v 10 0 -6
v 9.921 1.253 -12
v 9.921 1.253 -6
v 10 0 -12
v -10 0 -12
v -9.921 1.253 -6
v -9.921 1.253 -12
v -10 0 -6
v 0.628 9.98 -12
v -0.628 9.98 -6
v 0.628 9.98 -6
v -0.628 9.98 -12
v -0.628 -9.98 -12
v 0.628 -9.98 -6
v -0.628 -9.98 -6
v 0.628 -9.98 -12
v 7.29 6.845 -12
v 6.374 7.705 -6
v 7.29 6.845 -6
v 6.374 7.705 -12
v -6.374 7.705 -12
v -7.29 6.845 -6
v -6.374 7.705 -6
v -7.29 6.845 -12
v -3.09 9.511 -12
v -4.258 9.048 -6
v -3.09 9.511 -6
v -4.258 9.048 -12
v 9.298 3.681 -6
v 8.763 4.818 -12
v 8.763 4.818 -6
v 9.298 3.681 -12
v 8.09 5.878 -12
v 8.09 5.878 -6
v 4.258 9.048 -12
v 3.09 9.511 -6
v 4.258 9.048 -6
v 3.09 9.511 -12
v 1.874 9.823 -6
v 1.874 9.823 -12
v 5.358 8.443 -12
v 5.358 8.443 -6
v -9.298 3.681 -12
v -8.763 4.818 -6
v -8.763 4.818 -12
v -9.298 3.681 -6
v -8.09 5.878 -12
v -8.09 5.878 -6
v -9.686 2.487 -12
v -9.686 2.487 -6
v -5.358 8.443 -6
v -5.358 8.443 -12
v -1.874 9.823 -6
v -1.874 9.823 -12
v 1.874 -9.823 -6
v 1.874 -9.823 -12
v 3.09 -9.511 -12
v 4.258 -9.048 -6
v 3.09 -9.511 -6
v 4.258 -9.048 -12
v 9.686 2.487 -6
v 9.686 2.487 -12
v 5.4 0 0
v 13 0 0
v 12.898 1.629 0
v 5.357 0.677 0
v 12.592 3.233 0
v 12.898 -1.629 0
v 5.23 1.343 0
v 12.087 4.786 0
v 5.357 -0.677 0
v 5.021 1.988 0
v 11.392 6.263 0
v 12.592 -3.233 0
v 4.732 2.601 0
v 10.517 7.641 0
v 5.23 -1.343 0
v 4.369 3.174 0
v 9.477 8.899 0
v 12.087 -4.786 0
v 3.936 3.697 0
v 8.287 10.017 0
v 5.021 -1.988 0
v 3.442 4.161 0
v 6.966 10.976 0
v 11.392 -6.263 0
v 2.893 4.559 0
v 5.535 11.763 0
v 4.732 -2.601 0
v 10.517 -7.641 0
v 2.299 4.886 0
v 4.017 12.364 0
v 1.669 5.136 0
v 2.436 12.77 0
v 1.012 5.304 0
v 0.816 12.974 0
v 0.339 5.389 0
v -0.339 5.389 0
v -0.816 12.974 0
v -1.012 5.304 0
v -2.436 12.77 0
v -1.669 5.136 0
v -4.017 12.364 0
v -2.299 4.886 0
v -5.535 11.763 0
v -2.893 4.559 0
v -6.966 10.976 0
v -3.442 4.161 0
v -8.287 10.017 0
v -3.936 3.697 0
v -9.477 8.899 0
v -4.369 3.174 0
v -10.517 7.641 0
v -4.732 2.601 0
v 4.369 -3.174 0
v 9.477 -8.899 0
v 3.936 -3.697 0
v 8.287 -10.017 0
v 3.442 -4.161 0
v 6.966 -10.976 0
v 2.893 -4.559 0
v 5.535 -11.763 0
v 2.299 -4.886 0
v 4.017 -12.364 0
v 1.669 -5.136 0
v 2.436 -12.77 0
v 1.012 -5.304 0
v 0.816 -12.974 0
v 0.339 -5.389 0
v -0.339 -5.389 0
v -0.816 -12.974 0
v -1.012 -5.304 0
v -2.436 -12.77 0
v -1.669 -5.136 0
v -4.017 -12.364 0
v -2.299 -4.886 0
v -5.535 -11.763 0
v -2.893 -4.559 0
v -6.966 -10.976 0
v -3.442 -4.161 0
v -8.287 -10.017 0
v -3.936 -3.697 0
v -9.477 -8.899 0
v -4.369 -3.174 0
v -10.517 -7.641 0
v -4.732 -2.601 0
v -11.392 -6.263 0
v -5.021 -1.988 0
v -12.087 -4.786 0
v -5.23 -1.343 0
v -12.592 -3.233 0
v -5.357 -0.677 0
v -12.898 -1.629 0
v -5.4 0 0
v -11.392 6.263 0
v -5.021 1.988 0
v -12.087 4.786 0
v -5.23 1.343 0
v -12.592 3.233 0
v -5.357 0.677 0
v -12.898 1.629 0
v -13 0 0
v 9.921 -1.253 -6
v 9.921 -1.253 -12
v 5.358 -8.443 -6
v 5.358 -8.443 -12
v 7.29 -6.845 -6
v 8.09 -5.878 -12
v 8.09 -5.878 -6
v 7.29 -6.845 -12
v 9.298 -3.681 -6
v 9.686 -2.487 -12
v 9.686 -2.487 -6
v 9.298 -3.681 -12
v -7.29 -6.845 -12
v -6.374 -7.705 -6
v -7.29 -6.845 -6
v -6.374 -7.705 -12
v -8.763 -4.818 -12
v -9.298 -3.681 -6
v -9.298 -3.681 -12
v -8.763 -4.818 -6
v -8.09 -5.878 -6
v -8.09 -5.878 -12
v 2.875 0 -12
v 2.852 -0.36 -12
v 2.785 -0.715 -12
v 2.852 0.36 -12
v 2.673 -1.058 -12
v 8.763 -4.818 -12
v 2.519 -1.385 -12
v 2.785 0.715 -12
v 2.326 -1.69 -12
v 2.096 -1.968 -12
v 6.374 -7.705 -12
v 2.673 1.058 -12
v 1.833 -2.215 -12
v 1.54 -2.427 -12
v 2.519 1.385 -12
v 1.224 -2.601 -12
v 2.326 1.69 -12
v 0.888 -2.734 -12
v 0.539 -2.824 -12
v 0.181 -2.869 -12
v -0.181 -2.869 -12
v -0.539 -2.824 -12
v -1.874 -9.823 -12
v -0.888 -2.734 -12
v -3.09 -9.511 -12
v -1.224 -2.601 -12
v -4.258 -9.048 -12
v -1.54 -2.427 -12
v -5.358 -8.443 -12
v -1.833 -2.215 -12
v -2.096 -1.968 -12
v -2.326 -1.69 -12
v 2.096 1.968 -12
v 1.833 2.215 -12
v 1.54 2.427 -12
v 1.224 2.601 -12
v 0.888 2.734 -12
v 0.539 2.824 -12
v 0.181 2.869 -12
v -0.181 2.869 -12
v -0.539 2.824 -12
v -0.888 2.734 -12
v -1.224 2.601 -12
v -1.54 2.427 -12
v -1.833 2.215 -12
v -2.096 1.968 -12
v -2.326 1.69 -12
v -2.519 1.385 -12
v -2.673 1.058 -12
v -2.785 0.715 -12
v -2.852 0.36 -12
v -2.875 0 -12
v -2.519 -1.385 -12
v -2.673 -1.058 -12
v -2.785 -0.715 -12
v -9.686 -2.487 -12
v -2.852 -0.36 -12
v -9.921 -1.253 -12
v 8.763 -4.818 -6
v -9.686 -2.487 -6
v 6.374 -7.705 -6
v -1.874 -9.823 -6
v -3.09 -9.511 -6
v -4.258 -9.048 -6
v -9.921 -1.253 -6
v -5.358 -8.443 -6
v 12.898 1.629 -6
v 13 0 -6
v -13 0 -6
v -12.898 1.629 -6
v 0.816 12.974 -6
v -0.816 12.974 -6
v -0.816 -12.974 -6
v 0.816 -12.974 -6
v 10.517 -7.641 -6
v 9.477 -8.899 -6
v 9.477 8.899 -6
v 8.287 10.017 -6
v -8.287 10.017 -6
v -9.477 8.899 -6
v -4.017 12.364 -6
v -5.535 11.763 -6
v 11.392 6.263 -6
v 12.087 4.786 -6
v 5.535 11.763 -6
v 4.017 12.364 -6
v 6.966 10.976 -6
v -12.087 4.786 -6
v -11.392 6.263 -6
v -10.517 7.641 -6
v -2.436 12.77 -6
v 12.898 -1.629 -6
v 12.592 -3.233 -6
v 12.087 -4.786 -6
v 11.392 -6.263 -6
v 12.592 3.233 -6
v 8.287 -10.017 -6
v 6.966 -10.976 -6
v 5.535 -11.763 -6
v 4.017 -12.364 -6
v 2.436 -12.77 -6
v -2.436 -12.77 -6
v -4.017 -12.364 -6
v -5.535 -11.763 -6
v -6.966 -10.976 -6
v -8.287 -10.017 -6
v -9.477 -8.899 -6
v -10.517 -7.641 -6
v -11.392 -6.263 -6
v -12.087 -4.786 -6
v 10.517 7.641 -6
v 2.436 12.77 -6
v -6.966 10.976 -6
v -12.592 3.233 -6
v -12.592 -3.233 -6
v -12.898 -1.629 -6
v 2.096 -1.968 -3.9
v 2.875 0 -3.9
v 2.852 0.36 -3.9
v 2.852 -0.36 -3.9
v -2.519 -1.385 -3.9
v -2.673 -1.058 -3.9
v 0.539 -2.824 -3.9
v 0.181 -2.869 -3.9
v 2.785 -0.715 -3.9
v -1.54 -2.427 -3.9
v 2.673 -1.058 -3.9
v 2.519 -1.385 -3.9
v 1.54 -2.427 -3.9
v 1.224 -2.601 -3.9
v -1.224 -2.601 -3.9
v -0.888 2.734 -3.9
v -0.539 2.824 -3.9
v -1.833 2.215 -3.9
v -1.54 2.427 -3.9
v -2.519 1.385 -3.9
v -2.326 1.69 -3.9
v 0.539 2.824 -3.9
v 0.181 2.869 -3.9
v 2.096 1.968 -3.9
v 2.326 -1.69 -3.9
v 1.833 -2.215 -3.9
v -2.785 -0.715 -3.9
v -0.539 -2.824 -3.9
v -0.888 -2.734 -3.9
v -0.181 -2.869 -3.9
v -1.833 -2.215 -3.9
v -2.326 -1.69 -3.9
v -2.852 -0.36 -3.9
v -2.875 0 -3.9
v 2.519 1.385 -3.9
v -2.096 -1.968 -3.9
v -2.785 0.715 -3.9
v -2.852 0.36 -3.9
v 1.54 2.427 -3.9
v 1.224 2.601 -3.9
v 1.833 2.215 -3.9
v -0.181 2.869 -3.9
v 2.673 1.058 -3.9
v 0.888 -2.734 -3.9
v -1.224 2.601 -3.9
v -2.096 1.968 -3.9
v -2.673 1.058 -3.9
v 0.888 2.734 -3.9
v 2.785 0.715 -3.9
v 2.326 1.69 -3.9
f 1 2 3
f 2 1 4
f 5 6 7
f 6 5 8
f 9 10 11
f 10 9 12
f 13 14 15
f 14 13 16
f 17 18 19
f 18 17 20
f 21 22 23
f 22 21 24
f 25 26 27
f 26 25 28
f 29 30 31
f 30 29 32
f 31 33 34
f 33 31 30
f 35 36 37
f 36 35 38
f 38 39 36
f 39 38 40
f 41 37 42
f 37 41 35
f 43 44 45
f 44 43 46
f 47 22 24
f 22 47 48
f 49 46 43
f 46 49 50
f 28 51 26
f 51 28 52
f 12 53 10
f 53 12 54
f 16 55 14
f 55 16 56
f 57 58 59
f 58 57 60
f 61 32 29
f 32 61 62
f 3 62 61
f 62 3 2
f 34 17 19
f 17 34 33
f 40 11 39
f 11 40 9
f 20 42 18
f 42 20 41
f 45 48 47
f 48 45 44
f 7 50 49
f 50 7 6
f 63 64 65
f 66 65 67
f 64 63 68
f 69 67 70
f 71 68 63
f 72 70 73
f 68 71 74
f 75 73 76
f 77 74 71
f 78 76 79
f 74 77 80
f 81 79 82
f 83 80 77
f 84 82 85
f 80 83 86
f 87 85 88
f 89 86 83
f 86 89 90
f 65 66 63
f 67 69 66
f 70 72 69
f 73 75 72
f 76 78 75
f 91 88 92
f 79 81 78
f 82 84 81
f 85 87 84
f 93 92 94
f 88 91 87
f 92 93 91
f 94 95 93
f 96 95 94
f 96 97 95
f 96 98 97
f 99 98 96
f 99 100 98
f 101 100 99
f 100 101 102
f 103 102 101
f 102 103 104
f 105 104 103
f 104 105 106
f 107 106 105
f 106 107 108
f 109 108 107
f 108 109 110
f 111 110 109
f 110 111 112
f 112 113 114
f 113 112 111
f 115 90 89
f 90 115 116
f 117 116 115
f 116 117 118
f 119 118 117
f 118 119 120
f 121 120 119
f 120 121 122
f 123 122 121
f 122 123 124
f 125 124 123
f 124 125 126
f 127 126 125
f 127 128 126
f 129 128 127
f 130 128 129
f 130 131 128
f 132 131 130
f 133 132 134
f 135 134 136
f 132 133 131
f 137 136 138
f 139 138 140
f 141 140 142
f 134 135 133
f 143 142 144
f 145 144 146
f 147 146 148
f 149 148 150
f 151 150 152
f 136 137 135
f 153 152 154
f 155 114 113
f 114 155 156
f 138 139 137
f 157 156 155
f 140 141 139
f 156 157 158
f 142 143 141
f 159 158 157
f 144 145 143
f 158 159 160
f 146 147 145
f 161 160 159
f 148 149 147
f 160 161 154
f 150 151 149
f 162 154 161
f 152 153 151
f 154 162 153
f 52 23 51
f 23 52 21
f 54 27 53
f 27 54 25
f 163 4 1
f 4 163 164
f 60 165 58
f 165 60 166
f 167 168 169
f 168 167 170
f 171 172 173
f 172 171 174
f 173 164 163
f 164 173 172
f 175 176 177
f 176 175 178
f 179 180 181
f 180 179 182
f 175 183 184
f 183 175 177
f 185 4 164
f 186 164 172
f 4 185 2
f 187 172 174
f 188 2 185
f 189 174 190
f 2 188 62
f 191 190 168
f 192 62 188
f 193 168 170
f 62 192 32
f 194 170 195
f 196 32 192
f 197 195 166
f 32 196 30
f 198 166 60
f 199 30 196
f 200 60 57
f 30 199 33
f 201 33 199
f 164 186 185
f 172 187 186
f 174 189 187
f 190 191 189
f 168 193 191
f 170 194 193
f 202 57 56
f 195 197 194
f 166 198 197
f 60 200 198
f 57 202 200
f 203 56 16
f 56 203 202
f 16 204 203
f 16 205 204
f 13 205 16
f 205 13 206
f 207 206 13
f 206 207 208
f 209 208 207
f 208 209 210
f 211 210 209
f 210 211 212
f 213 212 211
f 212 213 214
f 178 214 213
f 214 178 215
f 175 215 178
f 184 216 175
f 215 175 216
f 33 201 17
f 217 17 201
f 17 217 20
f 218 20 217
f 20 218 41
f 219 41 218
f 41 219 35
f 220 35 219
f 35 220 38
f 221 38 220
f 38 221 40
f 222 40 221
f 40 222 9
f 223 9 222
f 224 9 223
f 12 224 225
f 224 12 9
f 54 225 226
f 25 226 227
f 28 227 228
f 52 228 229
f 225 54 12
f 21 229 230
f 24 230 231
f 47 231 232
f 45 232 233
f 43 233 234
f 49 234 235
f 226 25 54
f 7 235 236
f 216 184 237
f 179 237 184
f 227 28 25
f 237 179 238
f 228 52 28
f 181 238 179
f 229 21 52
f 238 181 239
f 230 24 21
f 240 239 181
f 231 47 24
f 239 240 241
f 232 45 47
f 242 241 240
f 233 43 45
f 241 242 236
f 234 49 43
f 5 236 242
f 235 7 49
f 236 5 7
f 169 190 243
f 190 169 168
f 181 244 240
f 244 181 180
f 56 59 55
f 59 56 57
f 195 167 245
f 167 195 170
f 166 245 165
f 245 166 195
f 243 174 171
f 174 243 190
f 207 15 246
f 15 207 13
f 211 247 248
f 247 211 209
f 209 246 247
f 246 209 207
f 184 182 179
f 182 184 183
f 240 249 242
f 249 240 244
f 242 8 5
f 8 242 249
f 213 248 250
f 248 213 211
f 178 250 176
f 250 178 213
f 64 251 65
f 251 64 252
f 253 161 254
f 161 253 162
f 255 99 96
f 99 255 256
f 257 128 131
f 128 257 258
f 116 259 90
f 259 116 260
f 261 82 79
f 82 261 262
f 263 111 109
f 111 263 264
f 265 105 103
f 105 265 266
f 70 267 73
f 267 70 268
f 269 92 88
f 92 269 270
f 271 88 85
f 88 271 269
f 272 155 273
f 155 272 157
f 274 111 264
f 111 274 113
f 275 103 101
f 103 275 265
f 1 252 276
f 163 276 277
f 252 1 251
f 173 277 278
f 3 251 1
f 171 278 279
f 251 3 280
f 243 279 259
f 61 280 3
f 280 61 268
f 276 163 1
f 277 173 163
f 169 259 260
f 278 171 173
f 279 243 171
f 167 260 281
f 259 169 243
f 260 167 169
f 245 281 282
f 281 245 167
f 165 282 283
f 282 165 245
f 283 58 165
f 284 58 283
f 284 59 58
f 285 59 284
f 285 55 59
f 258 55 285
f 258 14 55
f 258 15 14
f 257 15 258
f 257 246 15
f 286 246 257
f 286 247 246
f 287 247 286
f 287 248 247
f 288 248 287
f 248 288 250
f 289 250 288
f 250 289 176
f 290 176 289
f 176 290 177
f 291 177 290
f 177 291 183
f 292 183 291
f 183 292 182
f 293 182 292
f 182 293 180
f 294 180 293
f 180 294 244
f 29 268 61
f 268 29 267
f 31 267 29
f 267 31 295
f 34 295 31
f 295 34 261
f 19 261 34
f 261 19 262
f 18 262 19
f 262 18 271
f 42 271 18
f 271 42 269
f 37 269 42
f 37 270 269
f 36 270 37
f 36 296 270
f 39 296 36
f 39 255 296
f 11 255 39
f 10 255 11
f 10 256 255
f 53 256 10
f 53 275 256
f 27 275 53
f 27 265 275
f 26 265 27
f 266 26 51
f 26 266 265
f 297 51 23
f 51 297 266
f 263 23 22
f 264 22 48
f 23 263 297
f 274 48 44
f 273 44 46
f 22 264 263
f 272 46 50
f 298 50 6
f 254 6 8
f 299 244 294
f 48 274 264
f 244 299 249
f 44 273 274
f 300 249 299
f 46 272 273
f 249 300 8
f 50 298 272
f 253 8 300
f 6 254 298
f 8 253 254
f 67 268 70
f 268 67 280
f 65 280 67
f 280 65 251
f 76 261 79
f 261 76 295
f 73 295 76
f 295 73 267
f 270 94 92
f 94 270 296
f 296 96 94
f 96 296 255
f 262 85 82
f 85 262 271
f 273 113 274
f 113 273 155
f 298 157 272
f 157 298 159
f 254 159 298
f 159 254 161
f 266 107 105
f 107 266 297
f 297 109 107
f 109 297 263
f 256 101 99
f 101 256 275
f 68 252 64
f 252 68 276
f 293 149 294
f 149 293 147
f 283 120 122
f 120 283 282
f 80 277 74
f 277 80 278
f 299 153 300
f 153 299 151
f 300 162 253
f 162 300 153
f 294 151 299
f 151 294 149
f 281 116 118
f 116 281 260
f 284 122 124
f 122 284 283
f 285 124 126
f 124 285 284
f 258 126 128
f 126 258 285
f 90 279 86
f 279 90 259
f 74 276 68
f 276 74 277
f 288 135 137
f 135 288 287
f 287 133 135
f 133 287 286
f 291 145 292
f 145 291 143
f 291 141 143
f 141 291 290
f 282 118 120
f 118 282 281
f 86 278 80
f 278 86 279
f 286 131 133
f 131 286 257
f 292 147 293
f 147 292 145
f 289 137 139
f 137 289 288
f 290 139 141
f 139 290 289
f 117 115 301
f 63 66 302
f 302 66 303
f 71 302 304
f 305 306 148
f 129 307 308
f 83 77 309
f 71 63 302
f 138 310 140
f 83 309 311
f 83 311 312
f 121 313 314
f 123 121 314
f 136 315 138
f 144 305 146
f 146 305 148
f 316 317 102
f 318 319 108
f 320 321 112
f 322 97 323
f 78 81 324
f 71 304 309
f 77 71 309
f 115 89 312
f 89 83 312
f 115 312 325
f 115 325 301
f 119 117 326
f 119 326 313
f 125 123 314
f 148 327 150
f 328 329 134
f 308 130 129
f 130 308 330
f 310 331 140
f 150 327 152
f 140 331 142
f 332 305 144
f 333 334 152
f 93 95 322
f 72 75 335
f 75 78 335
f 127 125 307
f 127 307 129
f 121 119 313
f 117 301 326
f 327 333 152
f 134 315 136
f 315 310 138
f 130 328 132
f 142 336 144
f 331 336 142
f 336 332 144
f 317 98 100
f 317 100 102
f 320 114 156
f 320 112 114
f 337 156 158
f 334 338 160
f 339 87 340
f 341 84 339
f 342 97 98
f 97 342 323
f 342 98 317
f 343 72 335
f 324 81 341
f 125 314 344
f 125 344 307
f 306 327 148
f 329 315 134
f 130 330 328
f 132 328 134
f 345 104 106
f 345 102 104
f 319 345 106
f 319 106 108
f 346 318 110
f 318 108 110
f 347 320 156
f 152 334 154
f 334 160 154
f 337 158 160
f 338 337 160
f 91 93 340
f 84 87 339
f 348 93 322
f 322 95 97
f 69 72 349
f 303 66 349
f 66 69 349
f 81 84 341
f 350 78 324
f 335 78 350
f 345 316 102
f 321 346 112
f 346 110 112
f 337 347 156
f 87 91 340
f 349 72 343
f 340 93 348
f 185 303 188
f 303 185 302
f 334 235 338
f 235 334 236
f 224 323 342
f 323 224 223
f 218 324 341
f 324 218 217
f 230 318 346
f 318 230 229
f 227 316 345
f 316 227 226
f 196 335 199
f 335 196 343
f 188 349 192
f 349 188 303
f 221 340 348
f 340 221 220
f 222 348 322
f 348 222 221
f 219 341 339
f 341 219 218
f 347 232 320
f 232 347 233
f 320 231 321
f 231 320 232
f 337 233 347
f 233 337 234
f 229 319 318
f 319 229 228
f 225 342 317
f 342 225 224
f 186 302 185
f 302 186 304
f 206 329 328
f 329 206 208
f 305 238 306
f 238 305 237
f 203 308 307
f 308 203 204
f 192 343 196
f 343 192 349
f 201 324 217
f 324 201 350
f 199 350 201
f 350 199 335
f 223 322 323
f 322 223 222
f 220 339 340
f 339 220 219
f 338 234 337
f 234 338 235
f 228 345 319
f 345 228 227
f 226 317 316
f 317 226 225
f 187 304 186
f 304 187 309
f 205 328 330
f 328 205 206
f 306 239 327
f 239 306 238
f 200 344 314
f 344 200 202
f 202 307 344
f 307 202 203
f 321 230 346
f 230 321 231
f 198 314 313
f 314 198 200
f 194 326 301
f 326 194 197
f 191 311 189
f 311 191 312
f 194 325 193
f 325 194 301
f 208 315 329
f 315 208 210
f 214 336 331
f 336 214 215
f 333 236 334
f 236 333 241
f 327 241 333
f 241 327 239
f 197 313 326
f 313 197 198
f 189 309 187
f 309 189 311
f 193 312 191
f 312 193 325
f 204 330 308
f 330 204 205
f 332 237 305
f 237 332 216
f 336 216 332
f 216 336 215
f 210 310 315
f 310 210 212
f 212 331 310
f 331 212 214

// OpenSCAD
$fn = 50;


difference() {
	union() {
		translate(v = [0, 0, -12.0000000000]) {
			cylinder(h = 12, r = 10.0000000000);
		}
		translate(v = [0, 0, -6.0000000000]) {
			cylinder(h = 6, r = 13.0000000000);
		}
	}
	union() {
		translate(v = [0, 0, 0]) {
			rotate(a = [0, 0, 0]) {
				difference() {
					union() {
						#translate(v = [0, 0, -12.0000000000]) {
							cylinder(h = 12, r = 2.6000000000);
						}
						#translate(v = [0, 0, -3.9000000000]) {
							cylinder(h = 3.9000000000, r = 10.0000000000, r1 = 2.8750000000, r2 = 5.4000000000);
						}
						#translate(v = [0, 0, -12.0000000000]) {
							cylinder(h = 12, r = 2.8750000000);
						}
						#translate(v = [0, 0, -12.0000000000]) {
							cylinder(h = 12, r = 2.6000000000);
						}
					}
					union();
				}
			}
		}
	}
}
